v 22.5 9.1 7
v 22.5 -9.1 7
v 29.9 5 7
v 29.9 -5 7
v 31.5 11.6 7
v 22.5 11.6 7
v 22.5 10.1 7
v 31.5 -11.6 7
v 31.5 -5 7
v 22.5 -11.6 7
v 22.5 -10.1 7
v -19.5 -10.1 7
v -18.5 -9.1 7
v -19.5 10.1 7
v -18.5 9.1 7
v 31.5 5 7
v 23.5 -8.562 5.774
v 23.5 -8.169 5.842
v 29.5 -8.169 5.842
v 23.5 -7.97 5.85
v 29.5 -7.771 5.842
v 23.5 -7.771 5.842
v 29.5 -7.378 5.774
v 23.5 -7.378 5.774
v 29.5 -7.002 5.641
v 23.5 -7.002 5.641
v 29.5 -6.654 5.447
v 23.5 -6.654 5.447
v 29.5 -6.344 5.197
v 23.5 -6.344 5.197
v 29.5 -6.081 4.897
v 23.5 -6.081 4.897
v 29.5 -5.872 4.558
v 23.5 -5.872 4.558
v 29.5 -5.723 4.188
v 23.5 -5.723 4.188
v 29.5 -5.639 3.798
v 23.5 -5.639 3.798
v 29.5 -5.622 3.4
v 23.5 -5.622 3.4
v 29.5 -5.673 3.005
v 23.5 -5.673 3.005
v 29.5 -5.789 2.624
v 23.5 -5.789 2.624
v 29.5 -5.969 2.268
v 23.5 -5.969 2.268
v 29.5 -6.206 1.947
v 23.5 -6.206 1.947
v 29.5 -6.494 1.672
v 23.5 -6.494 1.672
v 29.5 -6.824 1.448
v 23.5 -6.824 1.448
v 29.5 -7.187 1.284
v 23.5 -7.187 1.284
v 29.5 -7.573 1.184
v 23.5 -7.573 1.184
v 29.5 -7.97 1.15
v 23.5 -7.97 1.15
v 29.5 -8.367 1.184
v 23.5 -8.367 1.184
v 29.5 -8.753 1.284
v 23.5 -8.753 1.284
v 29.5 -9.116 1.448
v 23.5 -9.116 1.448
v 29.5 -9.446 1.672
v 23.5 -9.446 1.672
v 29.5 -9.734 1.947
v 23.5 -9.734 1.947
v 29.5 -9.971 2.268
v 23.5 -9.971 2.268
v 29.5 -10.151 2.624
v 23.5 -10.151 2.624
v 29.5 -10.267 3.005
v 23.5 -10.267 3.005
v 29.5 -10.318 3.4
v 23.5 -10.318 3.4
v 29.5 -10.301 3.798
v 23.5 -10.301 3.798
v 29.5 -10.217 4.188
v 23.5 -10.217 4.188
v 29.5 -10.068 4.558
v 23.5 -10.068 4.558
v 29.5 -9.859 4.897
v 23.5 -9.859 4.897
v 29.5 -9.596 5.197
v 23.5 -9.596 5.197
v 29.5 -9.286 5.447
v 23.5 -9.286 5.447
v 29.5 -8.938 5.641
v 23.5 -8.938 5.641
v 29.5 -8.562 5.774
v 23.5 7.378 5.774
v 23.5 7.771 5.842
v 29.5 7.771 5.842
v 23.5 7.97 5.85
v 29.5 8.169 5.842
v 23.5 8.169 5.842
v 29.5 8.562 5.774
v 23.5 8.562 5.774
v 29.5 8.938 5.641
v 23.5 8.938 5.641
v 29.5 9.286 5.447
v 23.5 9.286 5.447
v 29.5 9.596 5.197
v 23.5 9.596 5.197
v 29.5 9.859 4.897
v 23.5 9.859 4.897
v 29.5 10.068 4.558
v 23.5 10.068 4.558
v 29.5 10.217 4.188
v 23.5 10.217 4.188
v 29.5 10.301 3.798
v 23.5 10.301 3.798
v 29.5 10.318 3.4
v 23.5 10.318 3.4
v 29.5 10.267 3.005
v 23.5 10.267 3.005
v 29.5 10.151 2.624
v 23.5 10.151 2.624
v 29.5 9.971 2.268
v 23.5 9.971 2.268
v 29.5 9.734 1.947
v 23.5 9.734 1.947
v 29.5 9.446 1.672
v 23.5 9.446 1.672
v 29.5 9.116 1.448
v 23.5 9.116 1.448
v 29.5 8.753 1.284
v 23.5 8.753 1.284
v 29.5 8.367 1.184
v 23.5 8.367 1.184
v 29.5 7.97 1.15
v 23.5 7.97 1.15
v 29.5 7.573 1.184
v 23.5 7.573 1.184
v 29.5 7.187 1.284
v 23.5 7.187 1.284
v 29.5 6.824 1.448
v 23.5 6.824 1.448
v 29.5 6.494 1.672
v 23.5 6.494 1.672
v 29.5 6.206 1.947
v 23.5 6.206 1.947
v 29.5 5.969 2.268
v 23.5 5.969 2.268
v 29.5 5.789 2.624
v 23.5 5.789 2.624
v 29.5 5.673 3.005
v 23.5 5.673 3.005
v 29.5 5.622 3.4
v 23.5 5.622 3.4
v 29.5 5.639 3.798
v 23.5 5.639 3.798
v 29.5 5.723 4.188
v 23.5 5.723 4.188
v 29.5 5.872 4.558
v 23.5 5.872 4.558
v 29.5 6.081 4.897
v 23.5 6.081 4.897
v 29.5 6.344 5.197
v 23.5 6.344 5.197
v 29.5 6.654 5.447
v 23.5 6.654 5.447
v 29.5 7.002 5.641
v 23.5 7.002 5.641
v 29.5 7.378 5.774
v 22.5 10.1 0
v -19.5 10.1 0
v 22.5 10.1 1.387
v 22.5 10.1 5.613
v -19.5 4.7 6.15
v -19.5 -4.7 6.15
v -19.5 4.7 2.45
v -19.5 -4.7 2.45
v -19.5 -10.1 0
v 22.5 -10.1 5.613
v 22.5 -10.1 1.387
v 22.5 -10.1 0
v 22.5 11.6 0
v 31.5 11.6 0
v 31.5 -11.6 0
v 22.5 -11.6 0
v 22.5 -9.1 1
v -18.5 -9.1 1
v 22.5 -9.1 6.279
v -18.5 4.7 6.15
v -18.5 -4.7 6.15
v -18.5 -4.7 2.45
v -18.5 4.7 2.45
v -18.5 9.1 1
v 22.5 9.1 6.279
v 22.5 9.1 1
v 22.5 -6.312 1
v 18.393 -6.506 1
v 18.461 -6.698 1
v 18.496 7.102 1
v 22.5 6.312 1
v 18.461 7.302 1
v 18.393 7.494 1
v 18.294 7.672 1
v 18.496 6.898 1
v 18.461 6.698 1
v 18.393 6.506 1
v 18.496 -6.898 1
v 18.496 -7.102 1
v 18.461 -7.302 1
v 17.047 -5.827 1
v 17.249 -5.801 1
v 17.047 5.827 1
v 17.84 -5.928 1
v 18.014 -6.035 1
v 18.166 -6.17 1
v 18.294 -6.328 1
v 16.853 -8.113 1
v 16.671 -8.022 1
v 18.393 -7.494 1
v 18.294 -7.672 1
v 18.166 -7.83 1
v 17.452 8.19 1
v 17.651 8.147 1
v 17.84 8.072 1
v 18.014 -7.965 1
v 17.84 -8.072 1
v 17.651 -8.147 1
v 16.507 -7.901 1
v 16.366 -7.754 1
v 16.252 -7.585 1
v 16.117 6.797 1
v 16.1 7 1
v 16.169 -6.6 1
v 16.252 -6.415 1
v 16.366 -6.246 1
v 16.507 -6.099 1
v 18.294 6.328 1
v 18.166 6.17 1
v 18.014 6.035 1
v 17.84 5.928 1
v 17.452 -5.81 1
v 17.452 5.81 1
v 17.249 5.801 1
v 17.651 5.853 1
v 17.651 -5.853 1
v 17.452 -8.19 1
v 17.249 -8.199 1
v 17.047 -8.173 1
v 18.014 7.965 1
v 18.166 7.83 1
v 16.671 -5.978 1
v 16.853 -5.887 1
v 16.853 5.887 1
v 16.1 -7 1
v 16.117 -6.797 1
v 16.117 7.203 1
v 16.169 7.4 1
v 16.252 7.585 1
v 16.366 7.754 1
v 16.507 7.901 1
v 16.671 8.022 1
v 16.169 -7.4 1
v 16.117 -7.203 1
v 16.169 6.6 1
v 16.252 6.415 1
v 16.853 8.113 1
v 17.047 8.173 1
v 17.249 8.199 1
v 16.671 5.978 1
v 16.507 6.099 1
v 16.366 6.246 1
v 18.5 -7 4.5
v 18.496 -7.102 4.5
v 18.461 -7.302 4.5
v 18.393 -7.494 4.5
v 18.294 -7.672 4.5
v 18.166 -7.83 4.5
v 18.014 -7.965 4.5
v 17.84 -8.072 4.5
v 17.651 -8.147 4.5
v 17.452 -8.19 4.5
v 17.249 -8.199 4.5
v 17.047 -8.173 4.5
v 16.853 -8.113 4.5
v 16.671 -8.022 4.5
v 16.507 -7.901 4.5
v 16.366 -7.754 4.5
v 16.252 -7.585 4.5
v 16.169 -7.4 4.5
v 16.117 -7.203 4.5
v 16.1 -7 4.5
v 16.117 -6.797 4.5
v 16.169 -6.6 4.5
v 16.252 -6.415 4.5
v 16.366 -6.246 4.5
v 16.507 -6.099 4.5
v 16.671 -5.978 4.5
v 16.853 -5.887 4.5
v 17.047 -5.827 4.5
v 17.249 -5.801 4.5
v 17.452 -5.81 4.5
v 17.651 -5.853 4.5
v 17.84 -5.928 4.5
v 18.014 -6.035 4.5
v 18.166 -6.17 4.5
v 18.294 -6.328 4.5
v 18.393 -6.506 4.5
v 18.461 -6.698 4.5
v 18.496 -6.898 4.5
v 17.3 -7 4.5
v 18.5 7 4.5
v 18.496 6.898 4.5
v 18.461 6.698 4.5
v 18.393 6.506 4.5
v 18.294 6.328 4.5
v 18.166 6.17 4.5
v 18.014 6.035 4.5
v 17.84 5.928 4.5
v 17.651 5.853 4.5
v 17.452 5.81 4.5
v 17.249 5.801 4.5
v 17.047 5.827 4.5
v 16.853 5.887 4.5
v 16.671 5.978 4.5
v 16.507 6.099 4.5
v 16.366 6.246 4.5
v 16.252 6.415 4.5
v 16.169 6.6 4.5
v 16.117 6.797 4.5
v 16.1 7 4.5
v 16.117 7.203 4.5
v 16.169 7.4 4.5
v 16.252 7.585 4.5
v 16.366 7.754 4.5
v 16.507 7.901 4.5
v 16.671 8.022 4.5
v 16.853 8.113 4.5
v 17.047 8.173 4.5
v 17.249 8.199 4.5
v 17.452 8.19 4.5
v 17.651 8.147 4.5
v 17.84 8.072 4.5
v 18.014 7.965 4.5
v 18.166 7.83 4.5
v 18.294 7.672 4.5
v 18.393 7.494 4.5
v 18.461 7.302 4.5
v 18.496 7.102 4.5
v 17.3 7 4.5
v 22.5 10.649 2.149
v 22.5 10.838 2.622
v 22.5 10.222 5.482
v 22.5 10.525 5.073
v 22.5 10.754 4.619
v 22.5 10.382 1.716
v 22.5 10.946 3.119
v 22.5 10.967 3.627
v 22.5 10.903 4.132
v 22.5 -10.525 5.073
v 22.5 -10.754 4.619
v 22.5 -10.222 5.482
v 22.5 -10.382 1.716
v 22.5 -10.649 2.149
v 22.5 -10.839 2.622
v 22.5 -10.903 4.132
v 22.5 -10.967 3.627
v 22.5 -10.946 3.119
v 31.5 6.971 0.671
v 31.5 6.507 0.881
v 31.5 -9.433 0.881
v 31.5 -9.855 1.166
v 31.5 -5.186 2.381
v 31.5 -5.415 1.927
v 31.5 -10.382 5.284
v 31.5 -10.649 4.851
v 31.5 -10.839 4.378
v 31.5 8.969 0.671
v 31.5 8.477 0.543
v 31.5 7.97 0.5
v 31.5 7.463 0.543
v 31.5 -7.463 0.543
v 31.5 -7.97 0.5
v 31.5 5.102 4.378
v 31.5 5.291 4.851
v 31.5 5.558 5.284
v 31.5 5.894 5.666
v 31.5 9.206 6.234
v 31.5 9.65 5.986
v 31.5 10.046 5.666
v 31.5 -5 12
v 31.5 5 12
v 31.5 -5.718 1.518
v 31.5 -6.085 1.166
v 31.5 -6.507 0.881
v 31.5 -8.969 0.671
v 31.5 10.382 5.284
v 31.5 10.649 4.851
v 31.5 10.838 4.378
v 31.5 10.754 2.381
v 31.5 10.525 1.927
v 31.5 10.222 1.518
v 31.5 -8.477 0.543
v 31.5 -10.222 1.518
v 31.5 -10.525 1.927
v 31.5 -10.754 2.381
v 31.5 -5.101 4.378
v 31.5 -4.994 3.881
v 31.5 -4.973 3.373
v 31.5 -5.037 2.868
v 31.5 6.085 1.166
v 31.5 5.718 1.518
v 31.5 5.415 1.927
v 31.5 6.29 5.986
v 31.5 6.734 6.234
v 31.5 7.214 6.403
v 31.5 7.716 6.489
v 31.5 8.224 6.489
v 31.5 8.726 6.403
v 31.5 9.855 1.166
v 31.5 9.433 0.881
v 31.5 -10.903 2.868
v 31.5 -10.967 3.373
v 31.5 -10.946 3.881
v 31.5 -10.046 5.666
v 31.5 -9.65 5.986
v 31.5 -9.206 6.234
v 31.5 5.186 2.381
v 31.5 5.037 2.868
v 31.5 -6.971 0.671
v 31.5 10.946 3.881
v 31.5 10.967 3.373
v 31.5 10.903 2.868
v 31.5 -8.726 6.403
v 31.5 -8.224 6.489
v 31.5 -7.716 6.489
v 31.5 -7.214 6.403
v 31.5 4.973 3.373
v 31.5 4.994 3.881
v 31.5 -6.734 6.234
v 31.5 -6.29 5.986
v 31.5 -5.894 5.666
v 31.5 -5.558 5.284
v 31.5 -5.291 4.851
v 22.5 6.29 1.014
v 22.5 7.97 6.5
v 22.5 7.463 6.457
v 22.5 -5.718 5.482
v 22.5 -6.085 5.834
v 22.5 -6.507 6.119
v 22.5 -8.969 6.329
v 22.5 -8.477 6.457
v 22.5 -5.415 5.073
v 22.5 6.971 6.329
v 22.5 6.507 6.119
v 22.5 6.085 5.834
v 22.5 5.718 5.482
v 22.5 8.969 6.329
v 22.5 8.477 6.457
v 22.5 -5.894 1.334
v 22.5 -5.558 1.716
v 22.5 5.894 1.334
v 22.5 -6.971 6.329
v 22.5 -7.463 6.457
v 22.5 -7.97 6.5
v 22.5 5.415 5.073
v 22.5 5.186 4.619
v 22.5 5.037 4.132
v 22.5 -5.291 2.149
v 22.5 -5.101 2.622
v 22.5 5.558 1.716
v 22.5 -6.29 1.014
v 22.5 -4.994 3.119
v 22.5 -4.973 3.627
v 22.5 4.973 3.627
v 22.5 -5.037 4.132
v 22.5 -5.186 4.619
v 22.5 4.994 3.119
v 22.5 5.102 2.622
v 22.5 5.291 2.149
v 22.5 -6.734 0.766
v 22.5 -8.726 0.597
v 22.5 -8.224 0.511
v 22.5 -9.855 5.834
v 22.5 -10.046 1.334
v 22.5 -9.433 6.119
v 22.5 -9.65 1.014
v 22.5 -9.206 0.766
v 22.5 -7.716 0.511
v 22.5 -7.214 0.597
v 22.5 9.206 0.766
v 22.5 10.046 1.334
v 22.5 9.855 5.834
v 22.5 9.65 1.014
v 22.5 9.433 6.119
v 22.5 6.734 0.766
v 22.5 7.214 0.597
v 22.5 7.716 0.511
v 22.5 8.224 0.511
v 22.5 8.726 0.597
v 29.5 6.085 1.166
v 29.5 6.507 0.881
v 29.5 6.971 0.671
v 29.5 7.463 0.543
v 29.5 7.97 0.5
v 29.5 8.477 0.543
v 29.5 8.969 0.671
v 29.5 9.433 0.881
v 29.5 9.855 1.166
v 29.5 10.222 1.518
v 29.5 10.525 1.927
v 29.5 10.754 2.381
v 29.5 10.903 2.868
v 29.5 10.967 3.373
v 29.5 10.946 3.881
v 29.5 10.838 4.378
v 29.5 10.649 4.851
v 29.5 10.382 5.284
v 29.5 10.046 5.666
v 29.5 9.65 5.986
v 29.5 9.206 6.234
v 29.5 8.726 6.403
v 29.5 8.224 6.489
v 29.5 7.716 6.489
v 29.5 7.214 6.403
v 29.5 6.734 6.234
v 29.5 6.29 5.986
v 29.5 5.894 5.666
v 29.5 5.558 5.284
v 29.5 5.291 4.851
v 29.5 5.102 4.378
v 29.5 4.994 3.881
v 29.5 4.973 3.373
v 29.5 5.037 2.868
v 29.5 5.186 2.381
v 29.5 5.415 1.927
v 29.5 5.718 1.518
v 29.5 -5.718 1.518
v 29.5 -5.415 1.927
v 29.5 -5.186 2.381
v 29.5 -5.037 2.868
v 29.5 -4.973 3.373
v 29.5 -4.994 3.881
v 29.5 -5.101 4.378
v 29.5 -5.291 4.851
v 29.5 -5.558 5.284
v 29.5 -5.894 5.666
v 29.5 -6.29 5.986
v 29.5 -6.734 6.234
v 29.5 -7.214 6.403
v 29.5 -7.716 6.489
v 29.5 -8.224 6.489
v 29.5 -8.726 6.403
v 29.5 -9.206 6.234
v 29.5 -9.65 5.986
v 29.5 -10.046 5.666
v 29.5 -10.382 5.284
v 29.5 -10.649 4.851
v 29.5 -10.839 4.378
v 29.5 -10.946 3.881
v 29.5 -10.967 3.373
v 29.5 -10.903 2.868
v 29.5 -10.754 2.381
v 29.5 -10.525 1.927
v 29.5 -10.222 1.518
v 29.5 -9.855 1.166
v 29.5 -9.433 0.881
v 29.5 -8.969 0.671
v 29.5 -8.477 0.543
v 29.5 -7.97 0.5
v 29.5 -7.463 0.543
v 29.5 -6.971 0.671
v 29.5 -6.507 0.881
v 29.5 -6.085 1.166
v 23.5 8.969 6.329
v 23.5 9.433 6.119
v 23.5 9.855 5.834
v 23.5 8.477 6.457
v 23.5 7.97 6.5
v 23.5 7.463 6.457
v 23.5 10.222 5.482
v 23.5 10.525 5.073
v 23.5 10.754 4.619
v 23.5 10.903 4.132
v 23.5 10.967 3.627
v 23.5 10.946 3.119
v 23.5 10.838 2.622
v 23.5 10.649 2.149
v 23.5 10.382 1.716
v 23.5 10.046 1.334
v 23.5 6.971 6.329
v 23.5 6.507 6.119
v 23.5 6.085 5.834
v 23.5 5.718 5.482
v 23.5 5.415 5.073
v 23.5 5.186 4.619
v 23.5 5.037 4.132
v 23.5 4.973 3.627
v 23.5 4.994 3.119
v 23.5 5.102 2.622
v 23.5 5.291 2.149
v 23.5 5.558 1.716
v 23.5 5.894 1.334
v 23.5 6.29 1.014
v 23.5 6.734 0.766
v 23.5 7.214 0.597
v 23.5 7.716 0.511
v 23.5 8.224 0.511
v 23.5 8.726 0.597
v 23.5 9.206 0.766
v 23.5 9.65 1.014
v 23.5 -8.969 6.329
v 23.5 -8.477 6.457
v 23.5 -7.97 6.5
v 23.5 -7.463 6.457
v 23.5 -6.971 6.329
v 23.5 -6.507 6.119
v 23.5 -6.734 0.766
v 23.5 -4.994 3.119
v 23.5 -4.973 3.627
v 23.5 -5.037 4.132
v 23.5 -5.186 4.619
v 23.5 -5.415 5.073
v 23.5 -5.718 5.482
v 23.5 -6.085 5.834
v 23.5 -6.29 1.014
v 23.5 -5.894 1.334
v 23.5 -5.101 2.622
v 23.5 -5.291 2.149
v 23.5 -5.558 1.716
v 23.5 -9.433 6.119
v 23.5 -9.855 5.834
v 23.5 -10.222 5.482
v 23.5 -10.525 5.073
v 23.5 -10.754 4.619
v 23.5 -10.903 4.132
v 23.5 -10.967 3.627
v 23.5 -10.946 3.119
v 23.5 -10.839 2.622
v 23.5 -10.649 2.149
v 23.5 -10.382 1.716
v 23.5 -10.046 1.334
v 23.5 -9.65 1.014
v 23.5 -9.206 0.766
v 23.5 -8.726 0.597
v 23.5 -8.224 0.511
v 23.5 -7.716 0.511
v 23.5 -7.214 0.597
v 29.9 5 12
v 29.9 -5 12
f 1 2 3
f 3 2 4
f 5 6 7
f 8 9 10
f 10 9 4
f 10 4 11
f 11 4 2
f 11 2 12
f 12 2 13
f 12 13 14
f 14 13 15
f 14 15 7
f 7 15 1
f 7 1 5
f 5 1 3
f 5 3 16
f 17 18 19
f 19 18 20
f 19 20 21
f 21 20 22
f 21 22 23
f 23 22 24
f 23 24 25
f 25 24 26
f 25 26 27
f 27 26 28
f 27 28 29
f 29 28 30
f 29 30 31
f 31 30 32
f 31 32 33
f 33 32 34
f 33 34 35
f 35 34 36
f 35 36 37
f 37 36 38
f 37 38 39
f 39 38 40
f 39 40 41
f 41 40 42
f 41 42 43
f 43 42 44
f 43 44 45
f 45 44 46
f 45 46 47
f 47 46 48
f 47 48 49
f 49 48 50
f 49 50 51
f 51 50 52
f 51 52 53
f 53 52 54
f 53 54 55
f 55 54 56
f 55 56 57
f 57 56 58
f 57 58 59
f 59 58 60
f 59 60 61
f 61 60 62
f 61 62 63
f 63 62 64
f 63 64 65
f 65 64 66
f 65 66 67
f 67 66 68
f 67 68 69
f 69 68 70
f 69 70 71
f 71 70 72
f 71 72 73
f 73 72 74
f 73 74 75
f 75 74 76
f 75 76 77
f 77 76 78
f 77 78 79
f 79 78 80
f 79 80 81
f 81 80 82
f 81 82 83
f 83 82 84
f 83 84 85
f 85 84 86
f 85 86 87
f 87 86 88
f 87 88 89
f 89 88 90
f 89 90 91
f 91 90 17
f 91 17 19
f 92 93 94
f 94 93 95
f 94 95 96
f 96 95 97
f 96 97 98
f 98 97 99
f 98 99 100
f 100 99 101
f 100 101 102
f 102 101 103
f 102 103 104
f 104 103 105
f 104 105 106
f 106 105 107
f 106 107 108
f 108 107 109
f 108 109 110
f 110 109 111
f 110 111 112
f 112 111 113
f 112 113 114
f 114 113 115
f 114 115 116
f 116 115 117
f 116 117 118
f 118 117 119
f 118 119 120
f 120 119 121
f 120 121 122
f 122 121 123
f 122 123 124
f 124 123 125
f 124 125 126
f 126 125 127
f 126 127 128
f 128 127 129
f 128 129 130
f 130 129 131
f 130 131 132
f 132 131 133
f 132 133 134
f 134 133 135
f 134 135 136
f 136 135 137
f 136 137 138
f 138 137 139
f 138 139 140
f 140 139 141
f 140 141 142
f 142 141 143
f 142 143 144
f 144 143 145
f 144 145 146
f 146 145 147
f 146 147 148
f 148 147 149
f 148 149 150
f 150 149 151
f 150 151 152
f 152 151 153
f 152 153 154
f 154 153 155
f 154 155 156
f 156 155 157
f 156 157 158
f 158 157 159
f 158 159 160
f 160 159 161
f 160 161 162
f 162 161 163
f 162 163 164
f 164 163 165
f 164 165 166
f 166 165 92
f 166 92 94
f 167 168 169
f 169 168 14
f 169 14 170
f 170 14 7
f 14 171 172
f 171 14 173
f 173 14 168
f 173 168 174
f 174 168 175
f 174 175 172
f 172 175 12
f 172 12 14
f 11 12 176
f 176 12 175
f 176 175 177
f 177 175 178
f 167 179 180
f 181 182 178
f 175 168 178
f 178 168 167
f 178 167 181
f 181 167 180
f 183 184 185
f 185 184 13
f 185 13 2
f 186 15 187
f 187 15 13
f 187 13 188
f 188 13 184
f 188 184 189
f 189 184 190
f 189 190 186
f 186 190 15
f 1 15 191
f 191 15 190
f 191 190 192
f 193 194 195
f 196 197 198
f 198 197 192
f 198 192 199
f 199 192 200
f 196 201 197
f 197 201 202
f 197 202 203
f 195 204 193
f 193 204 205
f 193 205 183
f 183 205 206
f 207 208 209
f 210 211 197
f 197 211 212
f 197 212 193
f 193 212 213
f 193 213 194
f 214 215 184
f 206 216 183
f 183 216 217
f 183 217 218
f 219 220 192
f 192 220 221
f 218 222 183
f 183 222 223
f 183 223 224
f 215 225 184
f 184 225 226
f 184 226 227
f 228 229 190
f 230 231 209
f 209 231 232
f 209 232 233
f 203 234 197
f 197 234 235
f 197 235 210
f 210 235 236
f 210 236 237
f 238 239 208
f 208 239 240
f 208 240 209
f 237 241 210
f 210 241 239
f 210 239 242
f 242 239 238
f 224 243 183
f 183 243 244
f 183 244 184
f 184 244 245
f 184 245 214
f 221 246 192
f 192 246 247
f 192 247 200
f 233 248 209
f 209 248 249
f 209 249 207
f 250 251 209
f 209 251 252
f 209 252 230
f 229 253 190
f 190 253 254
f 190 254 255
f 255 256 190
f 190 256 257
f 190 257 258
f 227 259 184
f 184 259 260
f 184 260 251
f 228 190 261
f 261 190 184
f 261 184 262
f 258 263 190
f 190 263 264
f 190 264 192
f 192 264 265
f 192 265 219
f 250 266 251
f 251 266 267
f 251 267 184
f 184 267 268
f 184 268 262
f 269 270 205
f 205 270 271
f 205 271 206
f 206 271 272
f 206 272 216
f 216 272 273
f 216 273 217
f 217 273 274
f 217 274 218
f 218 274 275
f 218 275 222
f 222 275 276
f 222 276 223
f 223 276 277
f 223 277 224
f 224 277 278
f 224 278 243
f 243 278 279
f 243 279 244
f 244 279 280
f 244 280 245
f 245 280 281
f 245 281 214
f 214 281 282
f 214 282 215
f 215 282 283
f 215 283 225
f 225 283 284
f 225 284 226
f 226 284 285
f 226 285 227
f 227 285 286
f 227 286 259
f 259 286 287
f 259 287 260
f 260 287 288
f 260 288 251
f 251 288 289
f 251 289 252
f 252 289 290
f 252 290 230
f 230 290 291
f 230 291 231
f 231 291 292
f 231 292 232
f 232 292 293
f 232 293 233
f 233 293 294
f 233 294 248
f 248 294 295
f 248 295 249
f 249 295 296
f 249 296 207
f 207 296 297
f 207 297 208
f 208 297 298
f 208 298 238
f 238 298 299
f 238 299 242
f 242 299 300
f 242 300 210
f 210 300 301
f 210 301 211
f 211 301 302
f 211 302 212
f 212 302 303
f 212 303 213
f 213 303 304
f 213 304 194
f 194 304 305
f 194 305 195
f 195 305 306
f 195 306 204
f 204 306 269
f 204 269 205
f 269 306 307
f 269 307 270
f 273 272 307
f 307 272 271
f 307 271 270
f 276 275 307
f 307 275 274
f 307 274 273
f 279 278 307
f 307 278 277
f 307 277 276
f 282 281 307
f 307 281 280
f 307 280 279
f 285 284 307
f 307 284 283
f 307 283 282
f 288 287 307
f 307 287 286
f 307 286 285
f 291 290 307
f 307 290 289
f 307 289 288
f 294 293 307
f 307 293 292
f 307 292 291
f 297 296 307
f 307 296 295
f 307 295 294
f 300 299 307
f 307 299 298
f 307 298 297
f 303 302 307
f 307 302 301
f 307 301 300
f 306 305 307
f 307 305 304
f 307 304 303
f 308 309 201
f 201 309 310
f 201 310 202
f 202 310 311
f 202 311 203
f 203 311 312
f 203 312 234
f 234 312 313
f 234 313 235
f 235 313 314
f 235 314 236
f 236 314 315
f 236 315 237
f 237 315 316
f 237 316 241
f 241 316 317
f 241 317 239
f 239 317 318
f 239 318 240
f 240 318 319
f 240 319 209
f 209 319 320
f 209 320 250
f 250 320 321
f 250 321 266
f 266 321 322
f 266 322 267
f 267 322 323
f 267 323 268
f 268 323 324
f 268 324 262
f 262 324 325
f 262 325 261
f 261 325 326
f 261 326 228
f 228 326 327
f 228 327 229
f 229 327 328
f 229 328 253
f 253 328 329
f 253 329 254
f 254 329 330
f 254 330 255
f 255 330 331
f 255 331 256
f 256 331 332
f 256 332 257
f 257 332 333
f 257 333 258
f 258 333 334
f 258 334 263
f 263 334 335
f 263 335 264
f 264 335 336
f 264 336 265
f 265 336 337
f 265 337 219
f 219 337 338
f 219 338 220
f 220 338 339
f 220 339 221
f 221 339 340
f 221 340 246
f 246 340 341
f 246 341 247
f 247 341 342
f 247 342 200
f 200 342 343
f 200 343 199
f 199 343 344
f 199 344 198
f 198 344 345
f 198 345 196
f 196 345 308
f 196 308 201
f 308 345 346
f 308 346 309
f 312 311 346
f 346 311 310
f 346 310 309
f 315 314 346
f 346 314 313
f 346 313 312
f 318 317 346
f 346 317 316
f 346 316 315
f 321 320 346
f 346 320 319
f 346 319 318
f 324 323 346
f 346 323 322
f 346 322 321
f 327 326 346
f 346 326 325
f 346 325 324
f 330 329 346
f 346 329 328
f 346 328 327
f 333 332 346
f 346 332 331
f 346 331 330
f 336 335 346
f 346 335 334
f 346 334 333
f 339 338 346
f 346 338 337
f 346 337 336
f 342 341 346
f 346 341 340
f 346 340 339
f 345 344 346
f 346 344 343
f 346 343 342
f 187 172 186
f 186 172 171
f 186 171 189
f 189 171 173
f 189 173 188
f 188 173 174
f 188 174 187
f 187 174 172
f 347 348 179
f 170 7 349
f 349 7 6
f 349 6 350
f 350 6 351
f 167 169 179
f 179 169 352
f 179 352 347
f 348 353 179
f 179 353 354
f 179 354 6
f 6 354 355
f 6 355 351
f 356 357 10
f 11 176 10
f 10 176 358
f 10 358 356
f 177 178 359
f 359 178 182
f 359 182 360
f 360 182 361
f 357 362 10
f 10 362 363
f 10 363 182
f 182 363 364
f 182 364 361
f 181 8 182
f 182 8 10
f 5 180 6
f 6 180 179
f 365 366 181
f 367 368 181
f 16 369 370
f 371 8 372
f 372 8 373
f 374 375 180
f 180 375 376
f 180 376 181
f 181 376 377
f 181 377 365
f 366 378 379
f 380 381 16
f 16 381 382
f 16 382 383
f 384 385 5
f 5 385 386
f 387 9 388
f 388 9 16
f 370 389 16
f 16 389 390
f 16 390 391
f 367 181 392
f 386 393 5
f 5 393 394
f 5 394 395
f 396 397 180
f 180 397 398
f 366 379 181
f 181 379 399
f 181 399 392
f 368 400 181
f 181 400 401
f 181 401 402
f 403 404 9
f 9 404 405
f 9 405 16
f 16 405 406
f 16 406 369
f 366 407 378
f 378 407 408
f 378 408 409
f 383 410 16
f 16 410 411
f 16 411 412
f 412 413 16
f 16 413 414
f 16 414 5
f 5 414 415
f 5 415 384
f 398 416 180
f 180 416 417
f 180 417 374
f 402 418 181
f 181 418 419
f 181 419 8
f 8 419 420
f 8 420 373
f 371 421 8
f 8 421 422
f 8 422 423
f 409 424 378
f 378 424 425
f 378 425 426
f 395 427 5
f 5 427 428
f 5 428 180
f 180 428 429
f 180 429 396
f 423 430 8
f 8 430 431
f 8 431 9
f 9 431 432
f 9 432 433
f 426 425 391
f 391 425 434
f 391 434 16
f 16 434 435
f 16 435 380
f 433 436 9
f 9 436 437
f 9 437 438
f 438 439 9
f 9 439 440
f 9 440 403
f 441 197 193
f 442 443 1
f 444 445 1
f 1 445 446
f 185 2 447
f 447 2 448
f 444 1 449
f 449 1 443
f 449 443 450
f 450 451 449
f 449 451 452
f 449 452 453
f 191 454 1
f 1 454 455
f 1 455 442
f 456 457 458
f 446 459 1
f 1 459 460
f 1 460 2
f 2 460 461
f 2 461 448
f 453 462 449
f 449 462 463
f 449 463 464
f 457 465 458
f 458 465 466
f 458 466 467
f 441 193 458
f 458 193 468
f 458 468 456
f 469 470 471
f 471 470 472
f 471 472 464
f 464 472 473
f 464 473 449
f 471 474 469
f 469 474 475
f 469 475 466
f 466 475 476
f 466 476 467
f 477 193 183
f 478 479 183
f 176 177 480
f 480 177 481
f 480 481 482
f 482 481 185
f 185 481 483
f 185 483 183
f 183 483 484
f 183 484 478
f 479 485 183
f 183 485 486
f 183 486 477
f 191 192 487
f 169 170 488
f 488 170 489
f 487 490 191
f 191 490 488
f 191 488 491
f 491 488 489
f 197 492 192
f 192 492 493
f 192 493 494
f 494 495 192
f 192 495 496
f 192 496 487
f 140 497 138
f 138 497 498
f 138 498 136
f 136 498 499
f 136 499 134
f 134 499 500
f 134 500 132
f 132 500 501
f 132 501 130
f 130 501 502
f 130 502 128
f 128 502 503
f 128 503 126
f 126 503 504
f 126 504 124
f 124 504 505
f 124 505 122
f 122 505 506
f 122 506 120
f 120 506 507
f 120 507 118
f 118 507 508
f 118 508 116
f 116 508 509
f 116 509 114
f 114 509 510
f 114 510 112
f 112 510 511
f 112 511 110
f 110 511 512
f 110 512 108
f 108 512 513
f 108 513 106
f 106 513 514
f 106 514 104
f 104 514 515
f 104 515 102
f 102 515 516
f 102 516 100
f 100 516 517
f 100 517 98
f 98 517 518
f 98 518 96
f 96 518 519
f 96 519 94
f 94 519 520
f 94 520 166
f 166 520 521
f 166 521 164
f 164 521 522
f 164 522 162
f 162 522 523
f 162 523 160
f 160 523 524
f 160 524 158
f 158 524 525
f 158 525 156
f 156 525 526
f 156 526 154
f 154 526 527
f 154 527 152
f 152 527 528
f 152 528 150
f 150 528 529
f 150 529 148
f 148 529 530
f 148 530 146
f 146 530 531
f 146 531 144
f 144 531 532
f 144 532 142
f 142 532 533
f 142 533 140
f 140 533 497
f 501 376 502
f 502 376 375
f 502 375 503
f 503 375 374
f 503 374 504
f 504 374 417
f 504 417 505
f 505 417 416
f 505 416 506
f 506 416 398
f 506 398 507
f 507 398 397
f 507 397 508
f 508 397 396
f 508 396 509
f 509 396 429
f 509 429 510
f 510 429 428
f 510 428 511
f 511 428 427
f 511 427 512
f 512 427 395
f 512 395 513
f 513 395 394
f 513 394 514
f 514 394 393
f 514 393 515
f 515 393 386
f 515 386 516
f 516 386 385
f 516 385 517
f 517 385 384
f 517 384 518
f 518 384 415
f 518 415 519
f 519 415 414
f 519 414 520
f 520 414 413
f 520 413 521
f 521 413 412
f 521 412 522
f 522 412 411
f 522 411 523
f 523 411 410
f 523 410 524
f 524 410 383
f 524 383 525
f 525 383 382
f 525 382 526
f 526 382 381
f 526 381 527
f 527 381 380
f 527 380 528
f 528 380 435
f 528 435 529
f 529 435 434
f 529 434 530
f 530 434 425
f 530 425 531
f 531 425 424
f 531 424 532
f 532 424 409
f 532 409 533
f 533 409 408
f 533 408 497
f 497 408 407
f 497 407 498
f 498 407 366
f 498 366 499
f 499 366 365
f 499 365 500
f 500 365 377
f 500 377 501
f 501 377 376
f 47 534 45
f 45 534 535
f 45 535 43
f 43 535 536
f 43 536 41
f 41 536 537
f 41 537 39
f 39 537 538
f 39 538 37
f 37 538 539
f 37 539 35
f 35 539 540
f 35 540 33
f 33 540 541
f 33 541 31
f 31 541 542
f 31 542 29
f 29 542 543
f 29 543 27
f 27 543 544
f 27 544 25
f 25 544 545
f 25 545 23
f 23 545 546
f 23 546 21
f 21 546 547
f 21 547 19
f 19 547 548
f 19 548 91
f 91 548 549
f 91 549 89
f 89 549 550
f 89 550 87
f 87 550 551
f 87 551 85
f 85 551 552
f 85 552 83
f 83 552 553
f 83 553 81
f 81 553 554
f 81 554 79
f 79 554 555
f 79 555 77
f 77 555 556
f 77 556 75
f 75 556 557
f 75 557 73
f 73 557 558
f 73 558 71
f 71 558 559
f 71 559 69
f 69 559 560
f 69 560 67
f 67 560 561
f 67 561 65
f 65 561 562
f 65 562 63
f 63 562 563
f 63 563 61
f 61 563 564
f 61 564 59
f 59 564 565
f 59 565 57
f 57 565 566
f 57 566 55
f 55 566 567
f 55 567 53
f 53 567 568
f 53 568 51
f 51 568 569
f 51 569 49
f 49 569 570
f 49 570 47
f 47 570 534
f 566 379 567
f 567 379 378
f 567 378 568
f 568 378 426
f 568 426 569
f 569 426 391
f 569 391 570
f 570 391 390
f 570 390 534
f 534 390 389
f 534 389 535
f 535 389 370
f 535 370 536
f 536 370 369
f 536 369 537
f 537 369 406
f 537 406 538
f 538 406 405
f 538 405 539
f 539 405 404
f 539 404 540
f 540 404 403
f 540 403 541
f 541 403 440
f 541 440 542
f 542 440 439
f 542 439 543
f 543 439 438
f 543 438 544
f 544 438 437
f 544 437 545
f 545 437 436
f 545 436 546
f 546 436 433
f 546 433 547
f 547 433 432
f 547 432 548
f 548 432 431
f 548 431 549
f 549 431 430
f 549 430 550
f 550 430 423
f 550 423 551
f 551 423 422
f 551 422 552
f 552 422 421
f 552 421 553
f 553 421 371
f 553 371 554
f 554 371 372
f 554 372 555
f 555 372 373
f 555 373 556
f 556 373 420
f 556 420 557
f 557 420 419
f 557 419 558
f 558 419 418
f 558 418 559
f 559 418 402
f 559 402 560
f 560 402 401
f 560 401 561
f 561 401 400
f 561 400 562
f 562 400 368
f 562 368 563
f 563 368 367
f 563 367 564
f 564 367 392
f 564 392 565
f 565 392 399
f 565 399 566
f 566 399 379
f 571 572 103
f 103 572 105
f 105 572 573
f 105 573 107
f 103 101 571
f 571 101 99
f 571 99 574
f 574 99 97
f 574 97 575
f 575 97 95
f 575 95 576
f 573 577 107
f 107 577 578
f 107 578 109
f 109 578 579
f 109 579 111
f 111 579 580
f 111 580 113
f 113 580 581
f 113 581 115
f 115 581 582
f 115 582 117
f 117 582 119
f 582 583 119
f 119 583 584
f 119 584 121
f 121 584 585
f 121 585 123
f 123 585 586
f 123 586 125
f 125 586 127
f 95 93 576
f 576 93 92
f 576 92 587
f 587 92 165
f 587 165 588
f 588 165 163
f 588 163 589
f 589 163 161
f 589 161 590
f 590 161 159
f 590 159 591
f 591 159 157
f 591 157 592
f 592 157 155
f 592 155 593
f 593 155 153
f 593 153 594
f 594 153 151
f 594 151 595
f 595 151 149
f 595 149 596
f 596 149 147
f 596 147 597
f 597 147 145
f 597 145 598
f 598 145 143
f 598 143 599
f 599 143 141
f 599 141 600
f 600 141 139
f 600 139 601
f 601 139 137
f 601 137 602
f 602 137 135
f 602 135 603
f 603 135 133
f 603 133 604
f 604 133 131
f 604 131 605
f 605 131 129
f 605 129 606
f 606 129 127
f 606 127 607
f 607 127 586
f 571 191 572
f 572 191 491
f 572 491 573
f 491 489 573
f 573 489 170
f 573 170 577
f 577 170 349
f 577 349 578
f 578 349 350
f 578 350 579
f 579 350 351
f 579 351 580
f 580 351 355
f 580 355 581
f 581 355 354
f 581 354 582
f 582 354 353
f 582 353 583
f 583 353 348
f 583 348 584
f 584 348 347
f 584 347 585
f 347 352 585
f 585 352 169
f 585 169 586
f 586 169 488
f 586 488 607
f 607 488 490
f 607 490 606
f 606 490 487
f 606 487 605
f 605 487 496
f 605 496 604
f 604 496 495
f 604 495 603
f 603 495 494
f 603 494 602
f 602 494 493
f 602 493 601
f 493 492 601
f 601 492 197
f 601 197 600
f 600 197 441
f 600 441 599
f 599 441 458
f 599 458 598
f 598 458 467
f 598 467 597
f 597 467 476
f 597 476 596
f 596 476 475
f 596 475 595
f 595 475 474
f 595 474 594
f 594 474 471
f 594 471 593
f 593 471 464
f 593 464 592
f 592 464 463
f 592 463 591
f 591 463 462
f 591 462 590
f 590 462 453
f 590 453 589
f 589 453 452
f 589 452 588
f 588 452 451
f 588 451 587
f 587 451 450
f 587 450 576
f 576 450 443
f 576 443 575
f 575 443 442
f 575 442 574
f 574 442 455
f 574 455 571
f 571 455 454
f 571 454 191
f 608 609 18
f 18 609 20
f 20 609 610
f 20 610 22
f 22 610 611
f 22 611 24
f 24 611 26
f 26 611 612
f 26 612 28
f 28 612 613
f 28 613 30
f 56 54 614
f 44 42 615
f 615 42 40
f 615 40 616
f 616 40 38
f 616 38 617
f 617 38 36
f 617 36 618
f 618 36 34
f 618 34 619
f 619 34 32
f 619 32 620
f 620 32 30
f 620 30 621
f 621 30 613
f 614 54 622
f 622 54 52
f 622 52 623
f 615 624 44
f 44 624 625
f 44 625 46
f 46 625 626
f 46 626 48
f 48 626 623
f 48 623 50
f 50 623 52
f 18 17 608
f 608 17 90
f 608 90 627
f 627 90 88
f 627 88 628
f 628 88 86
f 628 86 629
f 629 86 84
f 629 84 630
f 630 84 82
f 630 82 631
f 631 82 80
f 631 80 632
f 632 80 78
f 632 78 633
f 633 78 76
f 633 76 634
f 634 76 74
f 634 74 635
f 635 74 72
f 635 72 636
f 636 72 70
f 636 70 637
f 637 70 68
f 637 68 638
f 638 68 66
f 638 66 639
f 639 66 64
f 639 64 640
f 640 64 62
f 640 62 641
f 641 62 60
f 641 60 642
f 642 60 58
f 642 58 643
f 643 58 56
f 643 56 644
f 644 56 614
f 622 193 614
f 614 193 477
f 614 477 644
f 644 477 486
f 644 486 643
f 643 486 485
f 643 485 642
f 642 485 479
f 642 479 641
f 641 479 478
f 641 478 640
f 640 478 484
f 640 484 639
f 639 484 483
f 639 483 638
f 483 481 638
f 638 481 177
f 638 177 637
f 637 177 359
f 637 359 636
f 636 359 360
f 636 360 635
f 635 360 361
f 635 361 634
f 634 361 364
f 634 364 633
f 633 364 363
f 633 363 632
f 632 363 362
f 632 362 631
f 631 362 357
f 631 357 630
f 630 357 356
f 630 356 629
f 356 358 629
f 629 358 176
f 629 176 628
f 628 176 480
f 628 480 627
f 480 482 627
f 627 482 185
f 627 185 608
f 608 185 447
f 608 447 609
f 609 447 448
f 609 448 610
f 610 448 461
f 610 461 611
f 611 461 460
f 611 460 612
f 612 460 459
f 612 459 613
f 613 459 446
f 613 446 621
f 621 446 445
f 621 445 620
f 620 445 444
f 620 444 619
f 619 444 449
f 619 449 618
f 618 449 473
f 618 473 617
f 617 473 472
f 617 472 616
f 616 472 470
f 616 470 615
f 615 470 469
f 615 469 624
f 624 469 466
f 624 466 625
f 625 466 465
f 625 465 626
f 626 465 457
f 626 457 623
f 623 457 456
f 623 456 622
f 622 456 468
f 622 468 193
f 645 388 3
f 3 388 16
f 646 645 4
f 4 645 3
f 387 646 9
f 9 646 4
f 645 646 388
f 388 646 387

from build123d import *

# Parameters (mm, degrees)
SKETCH1_W              = 39
SKETCH1_H              = 20.2
BOSS_EXTRUDE1_DEPTH    = 7
SKETCH2_W              = 38
SKETCH2_H              = 18.2
CUT_EXTRUDE1_DEPTH     = 6
SKETCH3_R              = 1.2
SPUNT_DEPTH            = 3.5
SKETCH5_W              = 3.7
SKETCH5_H              = 9.4
USBC_DEPTH             = 22
ROZSIRENI_DRZAKU_DEPTH = 3
SKETCH7_W              = 7
SKETCH7_H              = 23.2
DRZAK_DEPTH            = 9
SKETCH8_R              = 2.35
ZAKLADNI_DIRA_DEPTH    = 9
SKETCH9_R              = 3
CUT_EXTRUDE4_DEPTH     = 2
SKETCH11_R             = 3
CUT_EXTRUDE5_DEPTH     = 1
SKETCH10_W             = 1.6
SKETCH10_H             = 10
PODSTAVA_DEPTH         = 5


with BuildPart() as part:
    # Sketch1 → Boss-Extrude1 (new body)
    with BuildSketch(Plane.XY):
        Rectangle(SKETCH1_W, SKETCH1_H)
    extrude(amount=BOSS_EXTRUDE1_DEPTH)

    # Sketch2 → Cut-Extrude1 (cut)
    with BuildSketch(Plane.XY.offset(7)):
        with Locations((0.5, 0)):
            Rectangle(SKETCH2_W, SKETCH2_H)
    extrude(amount=-CUT_EXTRUDE1_DEPTH, mode=Mode.SUBTRACT)

    # Sketch3 → spunt (add)
    with BuildSketch(Plane.XY.offset(1)):
        with Locations((17.3, -7)):
            Circle(SKETCH3_R)
        with Locations((17.3, 7)):
            Circle(SKETCH3_R)
    extrude(amount=SPUNT_DEPTH)

    # Sketch5 → usbc (cut)
    with BuildSketch(Plane(origin=(-18.5, 0, 0), x_dir=(0, 0, -1), z_dir=(1, 0, 0))):
        with Locations((-4.3, 0)):
            Rectangle(SKETCH5_W, SKETCH5_H)
    extrude(amount=-USBC_DEPTH, mode=Mode.SUBTRACT)

    # Sketch6 → rozsireni drzaku (add)
    with BuildSketch(Plane(origin=(19.5, 0, 0), x_dir=(0, 0, -1), z_dir=(1, 0, 0))):
        Polygon((-7, -10.1), (0, -10.1), (0, 10.1), (-7, 10.1), (-7, 9.1), (-1, 9.1), (-1, -9.1), (-7, -9.1), align=None)
    extrude(amount=ROZSIRENI_DRZAKU_DEPTH)

    # Sketch7 → drzak (add)
    with BuildSketch(Plane(origin=(22.5, 0, 0), x_dir=(0, 0, -1), z_dir=(1, 0, 0))):
        with Locations((-3.5, 0)):
            Rectangle(SKETCH7_W, SKETCH7_H)
    extrude(amount=DRZAK_DEPTH)

    # Sketch8 → zakladni dira (cut)
    with BuildSketch(Plane(origin=(31.5, 0, 0), x_dir=(0, 0, -1), z_dir=(1, 0, 0))):
        with Locations((-3.5, 7.97)):
            Circle(SKETCH8_R)
        with Locations((-3.5, -7.97)):
            Circle(SKETCH8_R)
    extrude(amount=-ZAKLADNI_DIRA_DEPTH, mode=Mode.SUBTRACT)

    # Sketch9 → Cut-Extrude4 (cut)
    with BuildSketch(Plane(origin=(31.5, 0, 0), x_dir=(0, 0, -1), z_dir=(1, 0, 0))):
        with Locations((-3.5, 7.97)):
            Circle(SKETCH9_R)
        with Locations((-3.5, -7.97)):
            Circle(SKETCH9_R)
    extrude(amount=-CUT_EXTRUDE4_DEPTH, mode=Mode.SUBTRACT)

    # Sketch11 → Cut-Extrude5 (cut)
    with BuildSketch(Plane.ZY.offset(-22.5)):
        with Locations((3.5, -7.97)):
            Circle(SKETCH11_R)
        with Locations((3.5, 7.97)):
            Circle(SKETCH11_R)
    extrude(amount=-CUT_EXTRUDE5_DEPTH, mode=Mode.SUBTRACT)

    # Sketch10 → podstava (add)
    with BuildSketch(Plane.XY.offset(7)):
        with Locations((30.7, 0)):
            Rectangle(SKETCH10_W, SKETCH10_H)
    extrude(amount=PODSTAVA_DEPTH)


solid = part.part
